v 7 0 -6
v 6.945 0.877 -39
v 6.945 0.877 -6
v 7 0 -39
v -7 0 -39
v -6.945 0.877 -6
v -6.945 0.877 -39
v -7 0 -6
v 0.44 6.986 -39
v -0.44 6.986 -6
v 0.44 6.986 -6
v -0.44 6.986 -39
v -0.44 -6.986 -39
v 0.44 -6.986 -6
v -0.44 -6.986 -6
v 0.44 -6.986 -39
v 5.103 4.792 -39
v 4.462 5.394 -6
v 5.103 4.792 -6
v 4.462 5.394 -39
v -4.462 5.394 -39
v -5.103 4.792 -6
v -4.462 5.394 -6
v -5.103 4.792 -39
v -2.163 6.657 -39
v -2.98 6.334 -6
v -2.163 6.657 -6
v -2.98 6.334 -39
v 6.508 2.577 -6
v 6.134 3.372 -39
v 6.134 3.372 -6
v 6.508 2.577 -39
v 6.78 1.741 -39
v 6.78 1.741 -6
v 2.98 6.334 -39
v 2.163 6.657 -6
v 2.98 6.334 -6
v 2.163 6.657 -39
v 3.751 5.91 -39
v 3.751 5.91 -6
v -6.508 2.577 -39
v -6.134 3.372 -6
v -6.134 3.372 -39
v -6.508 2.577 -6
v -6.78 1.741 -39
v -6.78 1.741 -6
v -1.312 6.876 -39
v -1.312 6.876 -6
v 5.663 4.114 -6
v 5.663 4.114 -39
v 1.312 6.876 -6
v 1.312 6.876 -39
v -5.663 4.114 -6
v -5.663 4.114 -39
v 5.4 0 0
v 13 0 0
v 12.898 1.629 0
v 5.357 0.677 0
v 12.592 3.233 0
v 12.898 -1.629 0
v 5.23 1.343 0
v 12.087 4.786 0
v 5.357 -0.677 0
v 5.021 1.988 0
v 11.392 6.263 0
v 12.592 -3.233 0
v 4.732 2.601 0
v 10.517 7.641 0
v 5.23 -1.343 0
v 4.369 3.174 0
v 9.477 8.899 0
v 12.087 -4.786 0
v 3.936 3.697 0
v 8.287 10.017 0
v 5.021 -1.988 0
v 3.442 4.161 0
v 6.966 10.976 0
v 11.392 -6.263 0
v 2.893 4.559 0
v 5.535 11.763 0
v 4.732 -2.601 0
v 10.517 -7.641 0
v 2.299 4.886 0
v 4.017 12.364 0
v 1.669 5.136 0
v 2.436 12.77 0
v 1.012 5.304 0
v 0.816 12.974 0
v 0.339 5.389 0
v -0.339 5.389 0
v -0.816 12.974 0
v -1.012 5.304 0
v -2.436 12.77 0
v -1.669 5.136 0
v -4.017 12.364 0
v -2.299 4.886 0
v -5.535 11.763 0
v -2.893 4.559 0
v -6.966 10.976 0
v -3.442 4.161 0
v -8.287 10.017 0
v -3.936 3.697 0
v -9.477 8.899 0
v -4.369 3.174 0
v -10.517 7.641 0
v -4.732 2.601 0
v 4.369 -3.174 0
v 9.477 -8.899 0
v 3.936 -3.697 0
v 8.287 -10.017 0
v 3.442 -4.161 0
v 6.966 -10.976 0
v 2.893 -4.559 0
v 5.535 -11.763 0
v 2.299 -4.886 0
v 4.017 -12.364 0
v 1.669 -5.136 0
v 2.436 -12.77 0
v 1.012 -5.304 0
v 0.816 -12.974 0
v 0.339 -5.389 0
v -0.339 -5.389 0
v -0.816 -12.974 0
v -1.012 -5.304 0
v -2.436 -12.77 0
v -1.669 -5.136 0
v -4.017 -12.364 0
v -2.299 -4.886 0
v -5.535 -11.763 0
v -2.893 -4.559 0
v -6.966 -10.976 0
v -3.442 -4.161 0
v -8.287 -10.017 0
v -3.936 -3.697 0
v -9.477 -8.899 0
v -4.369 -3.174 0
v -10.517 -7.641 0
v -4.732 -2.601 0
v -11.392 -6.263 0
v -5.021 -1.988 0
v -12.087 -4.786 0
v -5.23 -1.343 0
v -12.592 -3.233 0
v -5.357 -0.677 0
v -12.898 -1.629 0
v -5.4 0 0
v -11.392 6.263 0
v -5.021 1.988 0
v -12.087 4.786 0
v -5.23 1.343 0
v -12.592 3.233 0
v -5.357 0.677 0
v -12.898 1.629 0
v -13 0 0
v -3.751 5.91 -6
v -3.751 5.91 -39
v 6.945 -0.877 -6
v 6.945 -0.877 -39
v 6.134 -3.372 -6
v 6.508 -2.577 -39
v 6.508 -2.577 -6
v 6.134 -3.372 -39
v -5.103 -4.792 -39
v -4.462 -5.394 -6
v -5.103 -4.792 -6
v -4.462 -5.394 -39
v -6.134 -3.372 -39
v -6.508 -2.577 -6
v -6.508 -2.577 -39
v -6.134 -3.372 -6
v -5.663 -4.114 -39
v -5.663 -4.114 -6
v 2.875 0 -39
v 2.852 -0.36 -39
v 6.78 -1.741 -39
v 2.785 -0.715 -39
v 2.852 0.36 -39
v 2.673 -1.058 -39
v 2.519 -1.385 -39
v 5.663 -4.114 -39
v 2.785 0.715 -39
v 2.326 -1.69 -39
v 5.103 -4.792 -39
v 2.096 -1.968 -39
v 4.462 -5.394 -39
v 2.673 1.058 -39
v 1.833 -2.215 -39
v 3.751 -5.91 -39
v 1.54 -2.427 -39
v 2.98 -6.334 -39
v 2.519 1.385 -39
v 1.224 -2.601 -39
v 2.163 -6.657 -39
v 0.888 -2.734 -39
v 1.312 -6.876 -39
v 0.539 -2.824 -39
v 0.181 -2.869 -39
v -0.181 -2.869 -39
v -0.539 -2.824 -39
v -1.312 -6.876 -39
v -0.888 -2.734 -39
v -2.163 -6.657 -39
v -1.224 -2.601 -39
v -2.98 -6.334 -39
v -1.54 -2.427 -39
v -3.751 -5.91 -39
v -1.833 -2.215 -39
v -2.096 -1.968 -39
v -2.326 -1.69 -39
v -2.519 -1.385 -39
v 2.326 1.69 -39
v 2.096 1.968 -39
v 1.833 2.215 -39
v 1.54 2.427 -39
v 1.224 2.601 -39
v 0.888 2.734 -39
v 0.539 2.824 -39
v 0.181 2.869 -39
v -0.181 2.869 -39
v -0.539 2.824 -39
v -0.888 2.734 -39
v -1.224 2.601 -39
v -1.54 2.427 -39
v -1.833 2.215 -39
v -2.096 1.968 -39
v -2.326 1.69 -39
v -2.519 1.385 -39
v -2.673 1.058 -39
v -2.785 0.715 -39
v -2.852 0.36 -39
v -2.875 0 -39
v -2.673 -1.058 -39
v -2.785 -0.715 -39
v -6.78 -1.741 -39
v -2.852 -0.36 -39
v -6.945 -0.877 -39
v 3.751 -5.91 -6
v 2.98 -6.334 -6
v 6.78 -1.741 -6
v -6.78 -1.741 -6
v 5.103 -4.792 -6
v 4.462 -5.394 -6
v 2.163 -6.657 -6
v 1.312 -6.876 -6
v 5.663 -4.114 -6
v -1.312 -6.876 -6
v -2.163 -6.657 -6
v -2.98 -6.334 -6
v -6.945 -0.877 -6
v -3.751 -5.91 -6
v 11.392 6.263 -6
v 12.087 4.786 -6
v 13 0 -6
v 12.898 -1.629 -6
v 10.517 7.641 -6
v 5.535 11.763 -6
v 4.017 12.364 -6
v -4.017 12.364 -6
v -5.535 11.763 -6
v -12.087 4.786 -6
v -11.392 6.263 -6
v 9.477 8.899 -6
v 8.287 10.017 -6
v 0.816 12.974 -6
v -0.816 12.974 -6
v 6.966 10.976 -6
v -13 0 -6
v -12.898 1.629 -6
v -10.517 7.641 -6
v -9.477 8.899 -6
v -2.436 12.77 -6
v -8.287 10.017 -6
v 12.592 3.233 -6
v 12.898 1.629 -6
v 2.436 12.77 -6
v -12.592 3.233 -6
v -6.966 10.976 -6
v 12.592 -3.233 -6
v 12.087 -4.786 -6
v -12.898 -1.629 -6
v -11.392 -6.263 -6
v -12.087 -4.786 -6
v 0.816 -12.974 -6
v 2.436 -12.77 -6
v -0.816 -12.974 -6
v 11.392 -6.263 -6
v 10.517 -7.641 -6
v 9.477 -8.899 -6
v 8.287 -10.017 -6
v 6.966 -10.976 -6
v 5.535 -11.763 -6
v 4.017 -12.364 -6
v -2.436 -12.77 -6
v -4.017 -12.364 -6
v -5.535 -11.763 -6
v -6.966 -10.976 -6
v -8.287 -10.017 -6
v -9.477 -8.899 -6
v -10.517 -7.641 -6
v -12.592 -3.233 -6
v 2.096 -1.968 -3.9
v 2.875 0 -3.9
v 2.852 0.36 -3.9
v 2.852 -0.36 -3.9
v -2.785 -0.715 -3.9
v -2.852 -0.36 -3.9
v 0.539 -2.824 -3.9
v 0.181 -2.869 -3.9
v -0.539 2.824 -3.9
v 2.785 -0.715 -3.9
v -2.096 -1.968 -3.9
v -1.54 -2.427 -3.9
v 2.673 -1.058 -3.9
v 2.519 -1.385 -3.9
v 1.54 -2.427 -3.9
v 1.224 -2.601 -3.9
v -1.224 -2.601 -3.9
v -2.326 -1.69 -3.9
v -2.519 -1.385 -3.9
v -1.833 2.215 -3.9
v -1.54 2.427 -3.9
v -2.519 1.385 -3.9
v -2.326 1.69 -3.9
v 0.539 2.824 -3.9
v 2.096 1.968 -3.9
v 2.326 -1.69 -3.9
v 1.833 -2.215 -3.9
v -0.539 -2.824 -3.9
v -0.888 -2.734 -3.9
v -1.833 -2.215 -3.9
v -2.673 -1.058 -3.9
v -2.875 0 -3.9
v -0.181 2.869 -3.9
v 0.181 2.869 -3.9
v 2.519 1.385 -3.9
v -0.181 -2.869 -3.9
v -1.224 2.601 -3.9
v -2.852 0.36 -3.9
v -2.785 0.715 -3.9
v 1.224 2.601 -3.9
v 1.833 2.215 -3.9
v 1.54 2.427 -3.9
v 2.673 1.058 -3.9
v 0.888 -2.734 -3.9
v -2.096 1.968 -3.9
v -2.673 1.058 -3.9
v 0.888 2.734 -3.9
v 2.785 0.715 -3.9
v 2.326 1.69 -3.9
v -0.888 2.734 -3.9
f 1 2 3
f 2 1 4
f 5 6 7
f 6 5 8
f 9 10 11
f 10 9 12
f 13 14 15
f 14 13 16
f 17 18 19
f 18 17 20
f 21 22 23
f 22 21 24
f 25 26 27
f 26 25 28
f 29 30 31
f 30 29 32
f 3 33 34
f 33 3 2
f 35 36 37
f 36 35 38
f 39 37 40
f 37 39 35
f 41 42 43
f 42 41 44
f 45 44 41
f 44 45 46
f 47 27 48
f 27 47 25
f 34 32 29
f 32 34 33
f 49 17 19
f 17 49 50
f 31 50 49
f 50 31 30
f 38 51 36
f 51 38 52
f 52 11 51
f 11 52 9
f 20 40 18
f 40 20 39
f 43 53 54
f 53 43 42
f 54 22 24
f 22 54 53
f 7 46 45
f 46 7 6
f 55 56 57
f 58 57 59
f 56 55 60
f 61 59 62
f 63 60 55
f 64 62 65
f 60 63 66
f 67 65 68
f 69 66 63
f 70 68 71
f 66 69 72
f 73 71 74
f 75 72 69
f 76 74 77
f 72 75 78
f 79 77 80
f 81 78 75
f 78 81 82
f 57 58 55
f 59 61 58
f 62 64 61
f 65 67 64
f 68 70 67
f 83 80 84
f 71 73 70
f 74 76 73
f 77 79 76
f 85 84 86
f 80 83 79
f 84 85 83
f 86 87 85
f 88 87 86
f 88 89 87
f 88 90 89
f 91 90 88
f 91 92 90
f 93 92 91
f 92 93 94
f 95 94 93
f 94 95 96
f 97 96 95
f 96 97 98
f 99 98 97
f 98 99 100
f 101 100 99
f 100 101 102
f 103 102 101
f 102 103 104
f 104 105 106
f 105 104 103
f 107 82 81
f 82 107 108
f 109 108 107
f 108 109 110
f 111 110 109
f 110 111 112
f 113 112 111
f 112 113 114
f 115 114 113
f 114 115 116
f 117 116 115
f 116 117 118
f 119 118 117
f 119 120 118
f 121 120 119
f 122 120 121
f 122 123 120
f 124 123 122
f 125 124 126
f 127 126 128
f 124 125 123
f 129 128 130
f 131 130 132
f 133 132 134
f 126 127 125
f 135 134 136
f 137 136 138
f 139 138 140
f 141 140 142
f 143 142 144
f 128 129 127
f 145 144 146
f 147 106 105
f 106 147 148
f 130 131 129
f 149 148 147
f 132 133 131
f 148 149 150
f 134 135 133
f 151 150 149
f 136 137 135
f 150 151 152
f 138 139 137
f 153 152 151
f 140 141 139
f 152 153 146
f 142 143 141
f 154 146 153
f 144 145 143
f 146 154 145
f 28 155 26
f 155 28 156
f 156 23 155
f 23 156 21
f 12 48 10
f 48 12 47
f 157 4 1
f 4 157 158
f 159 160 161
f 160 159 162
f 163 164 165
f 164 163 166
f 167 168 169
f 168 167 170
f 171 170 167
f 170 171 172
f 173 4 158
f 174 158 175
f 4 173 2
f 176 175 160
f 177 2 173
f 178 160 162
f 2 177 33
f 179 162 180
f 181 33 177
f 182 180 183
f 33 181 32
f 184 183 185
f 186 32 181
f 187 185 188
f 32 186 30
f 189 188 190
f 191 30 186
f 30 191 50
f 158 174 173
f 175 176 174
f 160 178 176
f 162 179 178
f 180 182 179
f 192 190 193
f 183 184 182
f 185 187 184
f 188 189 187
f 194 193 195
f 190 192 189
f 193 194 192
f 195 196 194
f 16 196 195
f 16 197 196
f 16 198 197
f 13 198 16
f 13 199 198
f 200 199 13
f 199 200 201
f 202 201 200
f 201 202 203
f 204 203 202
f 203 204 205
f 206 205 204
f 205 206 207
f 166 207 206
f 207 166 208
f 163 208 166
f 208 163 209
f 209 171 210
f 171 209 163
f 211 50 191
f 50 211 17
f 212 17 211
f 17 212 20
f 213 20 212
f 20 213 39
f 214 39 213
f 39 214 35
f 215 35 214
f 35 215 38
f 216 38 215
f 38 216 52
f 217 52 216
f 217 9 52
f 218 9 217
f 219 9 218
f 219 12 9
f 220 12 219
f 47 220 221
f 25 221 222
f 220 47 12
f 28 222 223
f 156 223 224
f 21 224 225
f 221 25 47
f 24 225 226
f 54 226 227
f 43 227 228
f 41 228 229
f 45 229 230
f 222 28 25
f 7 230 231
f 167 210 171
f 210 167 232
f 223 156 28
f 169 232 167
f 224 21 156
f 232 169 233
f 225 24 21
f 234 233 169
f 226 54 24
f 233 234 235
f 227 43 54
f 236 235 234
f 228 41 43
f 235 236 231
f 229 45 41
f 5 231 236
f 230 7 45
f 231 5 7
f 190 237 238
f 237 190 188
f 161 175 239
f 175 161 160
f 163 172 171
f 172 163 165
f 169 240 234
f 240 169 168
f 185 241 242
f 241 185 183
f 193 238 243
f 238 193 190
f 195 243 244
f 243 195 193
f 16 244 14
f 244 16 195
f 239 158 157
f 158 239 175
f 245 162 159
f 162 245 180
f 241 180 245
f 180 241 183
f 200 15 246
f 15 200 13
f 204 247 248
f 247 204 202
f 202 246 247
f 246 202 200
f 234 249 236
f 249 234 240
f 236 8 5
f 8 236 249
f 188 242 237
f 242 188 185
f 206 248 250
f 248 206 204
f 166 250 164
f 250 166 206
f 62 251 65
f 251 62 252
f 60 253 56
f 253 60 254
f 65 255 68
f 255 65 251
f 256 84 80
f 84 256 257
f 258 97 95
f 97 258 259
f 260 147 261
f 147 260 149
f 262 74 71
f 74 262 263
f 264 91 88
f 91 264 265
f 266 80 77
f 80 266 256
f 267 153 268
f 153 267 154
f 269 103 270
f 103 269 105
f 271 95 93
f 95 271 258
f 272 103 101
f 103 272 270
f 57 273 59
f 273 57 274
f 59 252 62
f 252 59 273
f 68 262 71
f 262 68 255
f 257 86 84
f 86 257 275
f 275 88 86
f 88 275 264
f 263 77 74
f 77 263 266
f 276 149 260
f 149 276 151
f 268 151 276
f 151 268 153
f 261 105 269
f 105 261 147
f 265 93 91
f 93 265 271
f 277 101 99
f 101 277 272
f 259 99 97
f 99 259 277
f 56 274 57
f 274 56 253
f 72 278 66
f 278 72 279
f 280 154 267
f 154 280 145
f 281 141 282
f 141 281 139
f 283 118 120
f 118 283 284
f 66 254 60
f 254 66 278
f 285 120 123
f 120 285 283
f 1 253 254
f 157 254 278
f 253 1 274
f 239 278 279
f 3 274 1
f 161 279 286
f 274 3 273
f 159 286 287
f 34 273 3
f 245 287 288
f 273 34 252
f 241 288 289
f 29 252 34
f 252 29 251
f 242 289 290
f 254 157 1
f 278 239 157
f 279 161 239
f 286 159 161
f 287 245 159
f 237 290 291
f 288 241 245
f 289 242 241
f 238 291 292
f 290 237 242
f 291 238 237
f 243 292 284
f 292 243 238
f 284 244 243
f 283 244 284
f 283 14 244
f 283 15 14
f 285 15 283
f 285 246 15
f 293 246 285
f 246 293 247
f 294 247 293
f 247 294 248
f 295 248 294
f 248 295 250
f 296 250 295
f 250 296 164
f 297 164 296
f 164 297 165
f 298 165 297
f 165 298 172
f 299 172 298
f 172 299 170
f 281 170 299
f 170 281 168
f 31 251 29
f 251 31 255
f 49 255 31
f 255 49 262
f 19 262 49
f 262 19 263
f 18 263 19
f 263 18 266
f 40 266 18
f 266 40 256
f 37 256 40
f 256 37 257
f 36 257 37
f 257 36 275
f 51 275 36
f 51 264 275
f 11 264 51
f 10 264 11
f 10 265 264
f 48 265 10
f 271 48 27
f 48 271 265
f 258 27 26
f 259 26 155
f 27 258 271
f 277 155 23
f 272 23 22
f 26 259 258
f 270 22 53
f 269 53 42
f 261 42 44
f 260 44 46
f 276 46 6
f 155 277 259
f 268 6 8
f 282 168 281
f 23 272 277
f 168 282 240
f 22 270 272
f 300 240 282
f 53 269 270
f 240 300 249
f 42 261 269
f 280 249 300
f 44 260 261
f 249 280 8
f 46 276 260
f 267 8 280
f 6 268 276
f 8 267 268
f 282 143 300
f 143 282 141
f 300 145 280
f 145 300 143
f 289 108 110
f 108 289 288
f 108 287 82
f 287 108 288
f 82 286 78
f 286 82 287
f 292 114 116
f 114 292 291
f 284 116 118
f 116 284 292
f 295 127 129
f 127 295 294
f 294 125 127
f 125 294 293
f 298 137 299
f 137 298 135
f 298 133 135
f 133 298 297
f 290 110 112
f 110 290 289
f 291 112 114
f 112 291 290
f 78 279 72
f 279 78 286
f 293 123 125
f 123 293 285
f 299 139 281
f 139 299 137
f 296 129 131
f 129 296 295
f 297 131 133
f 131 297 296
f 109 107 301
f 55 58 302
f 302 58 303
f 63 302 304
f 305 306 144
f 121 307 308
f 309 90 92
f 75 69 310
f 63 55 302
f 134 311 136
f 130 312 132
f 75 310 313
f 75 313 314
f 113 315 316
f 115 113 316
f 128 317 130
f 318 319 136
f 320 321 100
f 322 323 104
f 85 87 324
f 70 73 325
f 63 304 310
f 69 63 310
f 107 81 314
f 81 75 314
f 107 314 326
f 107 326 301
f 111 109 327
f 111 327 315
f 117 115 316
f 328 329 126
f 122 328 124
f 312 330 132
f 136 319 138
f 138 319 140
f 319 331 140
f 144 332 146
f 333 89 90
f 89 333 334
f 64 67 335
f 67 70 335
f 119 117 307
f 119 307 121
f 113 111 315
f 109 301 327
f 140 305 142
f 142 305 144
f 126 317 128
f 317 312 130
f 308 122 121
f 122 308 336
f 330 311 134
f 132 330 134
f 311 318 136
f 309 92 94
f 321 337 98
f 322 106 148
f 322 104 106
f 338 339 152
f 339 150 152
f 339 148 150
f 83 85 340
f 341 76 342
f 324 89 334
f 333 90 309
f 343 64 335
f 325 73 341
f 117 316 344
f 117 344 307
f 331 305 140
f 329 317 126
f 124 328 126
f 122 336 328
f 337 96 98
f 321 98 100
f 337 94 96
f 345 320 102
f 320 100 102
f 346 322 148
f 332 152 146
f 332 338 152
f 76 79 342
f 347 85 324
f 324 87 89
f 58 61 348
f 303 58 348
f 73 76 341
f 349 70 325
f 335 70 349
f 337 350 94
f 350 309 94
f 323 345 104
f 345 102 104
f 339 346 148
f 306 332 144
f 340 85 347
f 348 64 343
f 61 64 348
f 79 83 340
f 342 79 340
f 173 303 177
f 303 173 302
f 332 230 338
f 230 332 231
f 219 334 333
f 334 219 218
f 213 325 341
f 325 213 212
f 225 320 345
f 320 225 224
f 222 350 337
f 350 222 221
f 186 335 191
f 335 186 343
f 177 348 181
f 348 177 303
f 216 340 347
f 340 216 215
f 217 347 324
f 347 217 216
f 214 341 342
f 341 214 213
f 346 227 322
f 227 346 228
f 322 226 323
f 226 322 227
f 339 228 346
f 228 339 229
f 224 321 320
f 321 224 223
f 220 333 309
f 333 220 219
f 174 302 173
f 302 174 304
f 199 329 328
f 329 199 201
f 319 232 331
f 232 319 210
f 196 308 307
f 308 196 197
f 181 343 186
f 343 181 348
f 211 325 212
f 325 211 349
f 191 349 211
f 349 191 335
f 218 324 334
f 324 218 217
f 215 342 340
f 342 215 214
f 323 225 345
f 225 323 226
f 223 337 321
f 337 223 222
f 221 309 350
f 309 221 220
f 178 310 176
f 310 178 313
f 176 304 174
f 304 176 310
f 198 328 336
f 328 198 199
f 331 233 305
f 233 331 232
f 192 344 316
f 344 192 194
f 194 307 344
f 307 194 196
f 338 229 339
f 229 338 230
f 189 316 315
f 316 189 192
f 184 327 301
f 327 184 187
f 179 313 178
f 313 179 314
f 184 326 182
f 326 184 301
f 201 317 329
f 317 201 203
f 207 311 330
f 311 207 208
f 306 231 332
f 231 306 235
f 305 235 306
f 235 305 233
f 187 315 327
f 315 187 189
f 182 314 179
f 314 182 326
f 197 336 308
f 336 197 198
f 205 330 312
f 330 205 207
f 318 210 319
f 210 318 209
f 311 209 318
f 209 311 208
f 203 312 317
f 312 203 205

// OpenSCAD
$fn = 50;


difference() {
	union() {
		translate(v = [0, 0, -39.0000000000]) {
			cylinder(h = 39, r = 7.0000000000);
		}
		translate(v = [0, 0, -6.0000000000]) {
			cylinder(h = 6, r = 13.0000000000);
		}
	}
	union() {
		translate(v = [0, 0, 0]) {
			rotate(a = [0, 0, 0]) {
				difference() {
					union() {
						#translate(v = [0, 0, -39.0000000000]) {
							cylinder(h = 39, r = 2.6000000000);
						}
						#translate(v = [0, 0, -3.9000000000]) {
							cylinder(h = 3.9000000000, r = 7.0000000000, r1 = 2.8750000000, r2 = 5.4000000000);
						}
						#translate(v = [0, 0, -39.0000000000]) {
							cylinder(h = 39, r = 2.8750000000);
						}
						#translate(v = [0, 0, -39.0000000000]) {
							cylinder(h = 39, r = 2.6000000000);
						}
					}
					union();
				}
			}
		}
	}
}
